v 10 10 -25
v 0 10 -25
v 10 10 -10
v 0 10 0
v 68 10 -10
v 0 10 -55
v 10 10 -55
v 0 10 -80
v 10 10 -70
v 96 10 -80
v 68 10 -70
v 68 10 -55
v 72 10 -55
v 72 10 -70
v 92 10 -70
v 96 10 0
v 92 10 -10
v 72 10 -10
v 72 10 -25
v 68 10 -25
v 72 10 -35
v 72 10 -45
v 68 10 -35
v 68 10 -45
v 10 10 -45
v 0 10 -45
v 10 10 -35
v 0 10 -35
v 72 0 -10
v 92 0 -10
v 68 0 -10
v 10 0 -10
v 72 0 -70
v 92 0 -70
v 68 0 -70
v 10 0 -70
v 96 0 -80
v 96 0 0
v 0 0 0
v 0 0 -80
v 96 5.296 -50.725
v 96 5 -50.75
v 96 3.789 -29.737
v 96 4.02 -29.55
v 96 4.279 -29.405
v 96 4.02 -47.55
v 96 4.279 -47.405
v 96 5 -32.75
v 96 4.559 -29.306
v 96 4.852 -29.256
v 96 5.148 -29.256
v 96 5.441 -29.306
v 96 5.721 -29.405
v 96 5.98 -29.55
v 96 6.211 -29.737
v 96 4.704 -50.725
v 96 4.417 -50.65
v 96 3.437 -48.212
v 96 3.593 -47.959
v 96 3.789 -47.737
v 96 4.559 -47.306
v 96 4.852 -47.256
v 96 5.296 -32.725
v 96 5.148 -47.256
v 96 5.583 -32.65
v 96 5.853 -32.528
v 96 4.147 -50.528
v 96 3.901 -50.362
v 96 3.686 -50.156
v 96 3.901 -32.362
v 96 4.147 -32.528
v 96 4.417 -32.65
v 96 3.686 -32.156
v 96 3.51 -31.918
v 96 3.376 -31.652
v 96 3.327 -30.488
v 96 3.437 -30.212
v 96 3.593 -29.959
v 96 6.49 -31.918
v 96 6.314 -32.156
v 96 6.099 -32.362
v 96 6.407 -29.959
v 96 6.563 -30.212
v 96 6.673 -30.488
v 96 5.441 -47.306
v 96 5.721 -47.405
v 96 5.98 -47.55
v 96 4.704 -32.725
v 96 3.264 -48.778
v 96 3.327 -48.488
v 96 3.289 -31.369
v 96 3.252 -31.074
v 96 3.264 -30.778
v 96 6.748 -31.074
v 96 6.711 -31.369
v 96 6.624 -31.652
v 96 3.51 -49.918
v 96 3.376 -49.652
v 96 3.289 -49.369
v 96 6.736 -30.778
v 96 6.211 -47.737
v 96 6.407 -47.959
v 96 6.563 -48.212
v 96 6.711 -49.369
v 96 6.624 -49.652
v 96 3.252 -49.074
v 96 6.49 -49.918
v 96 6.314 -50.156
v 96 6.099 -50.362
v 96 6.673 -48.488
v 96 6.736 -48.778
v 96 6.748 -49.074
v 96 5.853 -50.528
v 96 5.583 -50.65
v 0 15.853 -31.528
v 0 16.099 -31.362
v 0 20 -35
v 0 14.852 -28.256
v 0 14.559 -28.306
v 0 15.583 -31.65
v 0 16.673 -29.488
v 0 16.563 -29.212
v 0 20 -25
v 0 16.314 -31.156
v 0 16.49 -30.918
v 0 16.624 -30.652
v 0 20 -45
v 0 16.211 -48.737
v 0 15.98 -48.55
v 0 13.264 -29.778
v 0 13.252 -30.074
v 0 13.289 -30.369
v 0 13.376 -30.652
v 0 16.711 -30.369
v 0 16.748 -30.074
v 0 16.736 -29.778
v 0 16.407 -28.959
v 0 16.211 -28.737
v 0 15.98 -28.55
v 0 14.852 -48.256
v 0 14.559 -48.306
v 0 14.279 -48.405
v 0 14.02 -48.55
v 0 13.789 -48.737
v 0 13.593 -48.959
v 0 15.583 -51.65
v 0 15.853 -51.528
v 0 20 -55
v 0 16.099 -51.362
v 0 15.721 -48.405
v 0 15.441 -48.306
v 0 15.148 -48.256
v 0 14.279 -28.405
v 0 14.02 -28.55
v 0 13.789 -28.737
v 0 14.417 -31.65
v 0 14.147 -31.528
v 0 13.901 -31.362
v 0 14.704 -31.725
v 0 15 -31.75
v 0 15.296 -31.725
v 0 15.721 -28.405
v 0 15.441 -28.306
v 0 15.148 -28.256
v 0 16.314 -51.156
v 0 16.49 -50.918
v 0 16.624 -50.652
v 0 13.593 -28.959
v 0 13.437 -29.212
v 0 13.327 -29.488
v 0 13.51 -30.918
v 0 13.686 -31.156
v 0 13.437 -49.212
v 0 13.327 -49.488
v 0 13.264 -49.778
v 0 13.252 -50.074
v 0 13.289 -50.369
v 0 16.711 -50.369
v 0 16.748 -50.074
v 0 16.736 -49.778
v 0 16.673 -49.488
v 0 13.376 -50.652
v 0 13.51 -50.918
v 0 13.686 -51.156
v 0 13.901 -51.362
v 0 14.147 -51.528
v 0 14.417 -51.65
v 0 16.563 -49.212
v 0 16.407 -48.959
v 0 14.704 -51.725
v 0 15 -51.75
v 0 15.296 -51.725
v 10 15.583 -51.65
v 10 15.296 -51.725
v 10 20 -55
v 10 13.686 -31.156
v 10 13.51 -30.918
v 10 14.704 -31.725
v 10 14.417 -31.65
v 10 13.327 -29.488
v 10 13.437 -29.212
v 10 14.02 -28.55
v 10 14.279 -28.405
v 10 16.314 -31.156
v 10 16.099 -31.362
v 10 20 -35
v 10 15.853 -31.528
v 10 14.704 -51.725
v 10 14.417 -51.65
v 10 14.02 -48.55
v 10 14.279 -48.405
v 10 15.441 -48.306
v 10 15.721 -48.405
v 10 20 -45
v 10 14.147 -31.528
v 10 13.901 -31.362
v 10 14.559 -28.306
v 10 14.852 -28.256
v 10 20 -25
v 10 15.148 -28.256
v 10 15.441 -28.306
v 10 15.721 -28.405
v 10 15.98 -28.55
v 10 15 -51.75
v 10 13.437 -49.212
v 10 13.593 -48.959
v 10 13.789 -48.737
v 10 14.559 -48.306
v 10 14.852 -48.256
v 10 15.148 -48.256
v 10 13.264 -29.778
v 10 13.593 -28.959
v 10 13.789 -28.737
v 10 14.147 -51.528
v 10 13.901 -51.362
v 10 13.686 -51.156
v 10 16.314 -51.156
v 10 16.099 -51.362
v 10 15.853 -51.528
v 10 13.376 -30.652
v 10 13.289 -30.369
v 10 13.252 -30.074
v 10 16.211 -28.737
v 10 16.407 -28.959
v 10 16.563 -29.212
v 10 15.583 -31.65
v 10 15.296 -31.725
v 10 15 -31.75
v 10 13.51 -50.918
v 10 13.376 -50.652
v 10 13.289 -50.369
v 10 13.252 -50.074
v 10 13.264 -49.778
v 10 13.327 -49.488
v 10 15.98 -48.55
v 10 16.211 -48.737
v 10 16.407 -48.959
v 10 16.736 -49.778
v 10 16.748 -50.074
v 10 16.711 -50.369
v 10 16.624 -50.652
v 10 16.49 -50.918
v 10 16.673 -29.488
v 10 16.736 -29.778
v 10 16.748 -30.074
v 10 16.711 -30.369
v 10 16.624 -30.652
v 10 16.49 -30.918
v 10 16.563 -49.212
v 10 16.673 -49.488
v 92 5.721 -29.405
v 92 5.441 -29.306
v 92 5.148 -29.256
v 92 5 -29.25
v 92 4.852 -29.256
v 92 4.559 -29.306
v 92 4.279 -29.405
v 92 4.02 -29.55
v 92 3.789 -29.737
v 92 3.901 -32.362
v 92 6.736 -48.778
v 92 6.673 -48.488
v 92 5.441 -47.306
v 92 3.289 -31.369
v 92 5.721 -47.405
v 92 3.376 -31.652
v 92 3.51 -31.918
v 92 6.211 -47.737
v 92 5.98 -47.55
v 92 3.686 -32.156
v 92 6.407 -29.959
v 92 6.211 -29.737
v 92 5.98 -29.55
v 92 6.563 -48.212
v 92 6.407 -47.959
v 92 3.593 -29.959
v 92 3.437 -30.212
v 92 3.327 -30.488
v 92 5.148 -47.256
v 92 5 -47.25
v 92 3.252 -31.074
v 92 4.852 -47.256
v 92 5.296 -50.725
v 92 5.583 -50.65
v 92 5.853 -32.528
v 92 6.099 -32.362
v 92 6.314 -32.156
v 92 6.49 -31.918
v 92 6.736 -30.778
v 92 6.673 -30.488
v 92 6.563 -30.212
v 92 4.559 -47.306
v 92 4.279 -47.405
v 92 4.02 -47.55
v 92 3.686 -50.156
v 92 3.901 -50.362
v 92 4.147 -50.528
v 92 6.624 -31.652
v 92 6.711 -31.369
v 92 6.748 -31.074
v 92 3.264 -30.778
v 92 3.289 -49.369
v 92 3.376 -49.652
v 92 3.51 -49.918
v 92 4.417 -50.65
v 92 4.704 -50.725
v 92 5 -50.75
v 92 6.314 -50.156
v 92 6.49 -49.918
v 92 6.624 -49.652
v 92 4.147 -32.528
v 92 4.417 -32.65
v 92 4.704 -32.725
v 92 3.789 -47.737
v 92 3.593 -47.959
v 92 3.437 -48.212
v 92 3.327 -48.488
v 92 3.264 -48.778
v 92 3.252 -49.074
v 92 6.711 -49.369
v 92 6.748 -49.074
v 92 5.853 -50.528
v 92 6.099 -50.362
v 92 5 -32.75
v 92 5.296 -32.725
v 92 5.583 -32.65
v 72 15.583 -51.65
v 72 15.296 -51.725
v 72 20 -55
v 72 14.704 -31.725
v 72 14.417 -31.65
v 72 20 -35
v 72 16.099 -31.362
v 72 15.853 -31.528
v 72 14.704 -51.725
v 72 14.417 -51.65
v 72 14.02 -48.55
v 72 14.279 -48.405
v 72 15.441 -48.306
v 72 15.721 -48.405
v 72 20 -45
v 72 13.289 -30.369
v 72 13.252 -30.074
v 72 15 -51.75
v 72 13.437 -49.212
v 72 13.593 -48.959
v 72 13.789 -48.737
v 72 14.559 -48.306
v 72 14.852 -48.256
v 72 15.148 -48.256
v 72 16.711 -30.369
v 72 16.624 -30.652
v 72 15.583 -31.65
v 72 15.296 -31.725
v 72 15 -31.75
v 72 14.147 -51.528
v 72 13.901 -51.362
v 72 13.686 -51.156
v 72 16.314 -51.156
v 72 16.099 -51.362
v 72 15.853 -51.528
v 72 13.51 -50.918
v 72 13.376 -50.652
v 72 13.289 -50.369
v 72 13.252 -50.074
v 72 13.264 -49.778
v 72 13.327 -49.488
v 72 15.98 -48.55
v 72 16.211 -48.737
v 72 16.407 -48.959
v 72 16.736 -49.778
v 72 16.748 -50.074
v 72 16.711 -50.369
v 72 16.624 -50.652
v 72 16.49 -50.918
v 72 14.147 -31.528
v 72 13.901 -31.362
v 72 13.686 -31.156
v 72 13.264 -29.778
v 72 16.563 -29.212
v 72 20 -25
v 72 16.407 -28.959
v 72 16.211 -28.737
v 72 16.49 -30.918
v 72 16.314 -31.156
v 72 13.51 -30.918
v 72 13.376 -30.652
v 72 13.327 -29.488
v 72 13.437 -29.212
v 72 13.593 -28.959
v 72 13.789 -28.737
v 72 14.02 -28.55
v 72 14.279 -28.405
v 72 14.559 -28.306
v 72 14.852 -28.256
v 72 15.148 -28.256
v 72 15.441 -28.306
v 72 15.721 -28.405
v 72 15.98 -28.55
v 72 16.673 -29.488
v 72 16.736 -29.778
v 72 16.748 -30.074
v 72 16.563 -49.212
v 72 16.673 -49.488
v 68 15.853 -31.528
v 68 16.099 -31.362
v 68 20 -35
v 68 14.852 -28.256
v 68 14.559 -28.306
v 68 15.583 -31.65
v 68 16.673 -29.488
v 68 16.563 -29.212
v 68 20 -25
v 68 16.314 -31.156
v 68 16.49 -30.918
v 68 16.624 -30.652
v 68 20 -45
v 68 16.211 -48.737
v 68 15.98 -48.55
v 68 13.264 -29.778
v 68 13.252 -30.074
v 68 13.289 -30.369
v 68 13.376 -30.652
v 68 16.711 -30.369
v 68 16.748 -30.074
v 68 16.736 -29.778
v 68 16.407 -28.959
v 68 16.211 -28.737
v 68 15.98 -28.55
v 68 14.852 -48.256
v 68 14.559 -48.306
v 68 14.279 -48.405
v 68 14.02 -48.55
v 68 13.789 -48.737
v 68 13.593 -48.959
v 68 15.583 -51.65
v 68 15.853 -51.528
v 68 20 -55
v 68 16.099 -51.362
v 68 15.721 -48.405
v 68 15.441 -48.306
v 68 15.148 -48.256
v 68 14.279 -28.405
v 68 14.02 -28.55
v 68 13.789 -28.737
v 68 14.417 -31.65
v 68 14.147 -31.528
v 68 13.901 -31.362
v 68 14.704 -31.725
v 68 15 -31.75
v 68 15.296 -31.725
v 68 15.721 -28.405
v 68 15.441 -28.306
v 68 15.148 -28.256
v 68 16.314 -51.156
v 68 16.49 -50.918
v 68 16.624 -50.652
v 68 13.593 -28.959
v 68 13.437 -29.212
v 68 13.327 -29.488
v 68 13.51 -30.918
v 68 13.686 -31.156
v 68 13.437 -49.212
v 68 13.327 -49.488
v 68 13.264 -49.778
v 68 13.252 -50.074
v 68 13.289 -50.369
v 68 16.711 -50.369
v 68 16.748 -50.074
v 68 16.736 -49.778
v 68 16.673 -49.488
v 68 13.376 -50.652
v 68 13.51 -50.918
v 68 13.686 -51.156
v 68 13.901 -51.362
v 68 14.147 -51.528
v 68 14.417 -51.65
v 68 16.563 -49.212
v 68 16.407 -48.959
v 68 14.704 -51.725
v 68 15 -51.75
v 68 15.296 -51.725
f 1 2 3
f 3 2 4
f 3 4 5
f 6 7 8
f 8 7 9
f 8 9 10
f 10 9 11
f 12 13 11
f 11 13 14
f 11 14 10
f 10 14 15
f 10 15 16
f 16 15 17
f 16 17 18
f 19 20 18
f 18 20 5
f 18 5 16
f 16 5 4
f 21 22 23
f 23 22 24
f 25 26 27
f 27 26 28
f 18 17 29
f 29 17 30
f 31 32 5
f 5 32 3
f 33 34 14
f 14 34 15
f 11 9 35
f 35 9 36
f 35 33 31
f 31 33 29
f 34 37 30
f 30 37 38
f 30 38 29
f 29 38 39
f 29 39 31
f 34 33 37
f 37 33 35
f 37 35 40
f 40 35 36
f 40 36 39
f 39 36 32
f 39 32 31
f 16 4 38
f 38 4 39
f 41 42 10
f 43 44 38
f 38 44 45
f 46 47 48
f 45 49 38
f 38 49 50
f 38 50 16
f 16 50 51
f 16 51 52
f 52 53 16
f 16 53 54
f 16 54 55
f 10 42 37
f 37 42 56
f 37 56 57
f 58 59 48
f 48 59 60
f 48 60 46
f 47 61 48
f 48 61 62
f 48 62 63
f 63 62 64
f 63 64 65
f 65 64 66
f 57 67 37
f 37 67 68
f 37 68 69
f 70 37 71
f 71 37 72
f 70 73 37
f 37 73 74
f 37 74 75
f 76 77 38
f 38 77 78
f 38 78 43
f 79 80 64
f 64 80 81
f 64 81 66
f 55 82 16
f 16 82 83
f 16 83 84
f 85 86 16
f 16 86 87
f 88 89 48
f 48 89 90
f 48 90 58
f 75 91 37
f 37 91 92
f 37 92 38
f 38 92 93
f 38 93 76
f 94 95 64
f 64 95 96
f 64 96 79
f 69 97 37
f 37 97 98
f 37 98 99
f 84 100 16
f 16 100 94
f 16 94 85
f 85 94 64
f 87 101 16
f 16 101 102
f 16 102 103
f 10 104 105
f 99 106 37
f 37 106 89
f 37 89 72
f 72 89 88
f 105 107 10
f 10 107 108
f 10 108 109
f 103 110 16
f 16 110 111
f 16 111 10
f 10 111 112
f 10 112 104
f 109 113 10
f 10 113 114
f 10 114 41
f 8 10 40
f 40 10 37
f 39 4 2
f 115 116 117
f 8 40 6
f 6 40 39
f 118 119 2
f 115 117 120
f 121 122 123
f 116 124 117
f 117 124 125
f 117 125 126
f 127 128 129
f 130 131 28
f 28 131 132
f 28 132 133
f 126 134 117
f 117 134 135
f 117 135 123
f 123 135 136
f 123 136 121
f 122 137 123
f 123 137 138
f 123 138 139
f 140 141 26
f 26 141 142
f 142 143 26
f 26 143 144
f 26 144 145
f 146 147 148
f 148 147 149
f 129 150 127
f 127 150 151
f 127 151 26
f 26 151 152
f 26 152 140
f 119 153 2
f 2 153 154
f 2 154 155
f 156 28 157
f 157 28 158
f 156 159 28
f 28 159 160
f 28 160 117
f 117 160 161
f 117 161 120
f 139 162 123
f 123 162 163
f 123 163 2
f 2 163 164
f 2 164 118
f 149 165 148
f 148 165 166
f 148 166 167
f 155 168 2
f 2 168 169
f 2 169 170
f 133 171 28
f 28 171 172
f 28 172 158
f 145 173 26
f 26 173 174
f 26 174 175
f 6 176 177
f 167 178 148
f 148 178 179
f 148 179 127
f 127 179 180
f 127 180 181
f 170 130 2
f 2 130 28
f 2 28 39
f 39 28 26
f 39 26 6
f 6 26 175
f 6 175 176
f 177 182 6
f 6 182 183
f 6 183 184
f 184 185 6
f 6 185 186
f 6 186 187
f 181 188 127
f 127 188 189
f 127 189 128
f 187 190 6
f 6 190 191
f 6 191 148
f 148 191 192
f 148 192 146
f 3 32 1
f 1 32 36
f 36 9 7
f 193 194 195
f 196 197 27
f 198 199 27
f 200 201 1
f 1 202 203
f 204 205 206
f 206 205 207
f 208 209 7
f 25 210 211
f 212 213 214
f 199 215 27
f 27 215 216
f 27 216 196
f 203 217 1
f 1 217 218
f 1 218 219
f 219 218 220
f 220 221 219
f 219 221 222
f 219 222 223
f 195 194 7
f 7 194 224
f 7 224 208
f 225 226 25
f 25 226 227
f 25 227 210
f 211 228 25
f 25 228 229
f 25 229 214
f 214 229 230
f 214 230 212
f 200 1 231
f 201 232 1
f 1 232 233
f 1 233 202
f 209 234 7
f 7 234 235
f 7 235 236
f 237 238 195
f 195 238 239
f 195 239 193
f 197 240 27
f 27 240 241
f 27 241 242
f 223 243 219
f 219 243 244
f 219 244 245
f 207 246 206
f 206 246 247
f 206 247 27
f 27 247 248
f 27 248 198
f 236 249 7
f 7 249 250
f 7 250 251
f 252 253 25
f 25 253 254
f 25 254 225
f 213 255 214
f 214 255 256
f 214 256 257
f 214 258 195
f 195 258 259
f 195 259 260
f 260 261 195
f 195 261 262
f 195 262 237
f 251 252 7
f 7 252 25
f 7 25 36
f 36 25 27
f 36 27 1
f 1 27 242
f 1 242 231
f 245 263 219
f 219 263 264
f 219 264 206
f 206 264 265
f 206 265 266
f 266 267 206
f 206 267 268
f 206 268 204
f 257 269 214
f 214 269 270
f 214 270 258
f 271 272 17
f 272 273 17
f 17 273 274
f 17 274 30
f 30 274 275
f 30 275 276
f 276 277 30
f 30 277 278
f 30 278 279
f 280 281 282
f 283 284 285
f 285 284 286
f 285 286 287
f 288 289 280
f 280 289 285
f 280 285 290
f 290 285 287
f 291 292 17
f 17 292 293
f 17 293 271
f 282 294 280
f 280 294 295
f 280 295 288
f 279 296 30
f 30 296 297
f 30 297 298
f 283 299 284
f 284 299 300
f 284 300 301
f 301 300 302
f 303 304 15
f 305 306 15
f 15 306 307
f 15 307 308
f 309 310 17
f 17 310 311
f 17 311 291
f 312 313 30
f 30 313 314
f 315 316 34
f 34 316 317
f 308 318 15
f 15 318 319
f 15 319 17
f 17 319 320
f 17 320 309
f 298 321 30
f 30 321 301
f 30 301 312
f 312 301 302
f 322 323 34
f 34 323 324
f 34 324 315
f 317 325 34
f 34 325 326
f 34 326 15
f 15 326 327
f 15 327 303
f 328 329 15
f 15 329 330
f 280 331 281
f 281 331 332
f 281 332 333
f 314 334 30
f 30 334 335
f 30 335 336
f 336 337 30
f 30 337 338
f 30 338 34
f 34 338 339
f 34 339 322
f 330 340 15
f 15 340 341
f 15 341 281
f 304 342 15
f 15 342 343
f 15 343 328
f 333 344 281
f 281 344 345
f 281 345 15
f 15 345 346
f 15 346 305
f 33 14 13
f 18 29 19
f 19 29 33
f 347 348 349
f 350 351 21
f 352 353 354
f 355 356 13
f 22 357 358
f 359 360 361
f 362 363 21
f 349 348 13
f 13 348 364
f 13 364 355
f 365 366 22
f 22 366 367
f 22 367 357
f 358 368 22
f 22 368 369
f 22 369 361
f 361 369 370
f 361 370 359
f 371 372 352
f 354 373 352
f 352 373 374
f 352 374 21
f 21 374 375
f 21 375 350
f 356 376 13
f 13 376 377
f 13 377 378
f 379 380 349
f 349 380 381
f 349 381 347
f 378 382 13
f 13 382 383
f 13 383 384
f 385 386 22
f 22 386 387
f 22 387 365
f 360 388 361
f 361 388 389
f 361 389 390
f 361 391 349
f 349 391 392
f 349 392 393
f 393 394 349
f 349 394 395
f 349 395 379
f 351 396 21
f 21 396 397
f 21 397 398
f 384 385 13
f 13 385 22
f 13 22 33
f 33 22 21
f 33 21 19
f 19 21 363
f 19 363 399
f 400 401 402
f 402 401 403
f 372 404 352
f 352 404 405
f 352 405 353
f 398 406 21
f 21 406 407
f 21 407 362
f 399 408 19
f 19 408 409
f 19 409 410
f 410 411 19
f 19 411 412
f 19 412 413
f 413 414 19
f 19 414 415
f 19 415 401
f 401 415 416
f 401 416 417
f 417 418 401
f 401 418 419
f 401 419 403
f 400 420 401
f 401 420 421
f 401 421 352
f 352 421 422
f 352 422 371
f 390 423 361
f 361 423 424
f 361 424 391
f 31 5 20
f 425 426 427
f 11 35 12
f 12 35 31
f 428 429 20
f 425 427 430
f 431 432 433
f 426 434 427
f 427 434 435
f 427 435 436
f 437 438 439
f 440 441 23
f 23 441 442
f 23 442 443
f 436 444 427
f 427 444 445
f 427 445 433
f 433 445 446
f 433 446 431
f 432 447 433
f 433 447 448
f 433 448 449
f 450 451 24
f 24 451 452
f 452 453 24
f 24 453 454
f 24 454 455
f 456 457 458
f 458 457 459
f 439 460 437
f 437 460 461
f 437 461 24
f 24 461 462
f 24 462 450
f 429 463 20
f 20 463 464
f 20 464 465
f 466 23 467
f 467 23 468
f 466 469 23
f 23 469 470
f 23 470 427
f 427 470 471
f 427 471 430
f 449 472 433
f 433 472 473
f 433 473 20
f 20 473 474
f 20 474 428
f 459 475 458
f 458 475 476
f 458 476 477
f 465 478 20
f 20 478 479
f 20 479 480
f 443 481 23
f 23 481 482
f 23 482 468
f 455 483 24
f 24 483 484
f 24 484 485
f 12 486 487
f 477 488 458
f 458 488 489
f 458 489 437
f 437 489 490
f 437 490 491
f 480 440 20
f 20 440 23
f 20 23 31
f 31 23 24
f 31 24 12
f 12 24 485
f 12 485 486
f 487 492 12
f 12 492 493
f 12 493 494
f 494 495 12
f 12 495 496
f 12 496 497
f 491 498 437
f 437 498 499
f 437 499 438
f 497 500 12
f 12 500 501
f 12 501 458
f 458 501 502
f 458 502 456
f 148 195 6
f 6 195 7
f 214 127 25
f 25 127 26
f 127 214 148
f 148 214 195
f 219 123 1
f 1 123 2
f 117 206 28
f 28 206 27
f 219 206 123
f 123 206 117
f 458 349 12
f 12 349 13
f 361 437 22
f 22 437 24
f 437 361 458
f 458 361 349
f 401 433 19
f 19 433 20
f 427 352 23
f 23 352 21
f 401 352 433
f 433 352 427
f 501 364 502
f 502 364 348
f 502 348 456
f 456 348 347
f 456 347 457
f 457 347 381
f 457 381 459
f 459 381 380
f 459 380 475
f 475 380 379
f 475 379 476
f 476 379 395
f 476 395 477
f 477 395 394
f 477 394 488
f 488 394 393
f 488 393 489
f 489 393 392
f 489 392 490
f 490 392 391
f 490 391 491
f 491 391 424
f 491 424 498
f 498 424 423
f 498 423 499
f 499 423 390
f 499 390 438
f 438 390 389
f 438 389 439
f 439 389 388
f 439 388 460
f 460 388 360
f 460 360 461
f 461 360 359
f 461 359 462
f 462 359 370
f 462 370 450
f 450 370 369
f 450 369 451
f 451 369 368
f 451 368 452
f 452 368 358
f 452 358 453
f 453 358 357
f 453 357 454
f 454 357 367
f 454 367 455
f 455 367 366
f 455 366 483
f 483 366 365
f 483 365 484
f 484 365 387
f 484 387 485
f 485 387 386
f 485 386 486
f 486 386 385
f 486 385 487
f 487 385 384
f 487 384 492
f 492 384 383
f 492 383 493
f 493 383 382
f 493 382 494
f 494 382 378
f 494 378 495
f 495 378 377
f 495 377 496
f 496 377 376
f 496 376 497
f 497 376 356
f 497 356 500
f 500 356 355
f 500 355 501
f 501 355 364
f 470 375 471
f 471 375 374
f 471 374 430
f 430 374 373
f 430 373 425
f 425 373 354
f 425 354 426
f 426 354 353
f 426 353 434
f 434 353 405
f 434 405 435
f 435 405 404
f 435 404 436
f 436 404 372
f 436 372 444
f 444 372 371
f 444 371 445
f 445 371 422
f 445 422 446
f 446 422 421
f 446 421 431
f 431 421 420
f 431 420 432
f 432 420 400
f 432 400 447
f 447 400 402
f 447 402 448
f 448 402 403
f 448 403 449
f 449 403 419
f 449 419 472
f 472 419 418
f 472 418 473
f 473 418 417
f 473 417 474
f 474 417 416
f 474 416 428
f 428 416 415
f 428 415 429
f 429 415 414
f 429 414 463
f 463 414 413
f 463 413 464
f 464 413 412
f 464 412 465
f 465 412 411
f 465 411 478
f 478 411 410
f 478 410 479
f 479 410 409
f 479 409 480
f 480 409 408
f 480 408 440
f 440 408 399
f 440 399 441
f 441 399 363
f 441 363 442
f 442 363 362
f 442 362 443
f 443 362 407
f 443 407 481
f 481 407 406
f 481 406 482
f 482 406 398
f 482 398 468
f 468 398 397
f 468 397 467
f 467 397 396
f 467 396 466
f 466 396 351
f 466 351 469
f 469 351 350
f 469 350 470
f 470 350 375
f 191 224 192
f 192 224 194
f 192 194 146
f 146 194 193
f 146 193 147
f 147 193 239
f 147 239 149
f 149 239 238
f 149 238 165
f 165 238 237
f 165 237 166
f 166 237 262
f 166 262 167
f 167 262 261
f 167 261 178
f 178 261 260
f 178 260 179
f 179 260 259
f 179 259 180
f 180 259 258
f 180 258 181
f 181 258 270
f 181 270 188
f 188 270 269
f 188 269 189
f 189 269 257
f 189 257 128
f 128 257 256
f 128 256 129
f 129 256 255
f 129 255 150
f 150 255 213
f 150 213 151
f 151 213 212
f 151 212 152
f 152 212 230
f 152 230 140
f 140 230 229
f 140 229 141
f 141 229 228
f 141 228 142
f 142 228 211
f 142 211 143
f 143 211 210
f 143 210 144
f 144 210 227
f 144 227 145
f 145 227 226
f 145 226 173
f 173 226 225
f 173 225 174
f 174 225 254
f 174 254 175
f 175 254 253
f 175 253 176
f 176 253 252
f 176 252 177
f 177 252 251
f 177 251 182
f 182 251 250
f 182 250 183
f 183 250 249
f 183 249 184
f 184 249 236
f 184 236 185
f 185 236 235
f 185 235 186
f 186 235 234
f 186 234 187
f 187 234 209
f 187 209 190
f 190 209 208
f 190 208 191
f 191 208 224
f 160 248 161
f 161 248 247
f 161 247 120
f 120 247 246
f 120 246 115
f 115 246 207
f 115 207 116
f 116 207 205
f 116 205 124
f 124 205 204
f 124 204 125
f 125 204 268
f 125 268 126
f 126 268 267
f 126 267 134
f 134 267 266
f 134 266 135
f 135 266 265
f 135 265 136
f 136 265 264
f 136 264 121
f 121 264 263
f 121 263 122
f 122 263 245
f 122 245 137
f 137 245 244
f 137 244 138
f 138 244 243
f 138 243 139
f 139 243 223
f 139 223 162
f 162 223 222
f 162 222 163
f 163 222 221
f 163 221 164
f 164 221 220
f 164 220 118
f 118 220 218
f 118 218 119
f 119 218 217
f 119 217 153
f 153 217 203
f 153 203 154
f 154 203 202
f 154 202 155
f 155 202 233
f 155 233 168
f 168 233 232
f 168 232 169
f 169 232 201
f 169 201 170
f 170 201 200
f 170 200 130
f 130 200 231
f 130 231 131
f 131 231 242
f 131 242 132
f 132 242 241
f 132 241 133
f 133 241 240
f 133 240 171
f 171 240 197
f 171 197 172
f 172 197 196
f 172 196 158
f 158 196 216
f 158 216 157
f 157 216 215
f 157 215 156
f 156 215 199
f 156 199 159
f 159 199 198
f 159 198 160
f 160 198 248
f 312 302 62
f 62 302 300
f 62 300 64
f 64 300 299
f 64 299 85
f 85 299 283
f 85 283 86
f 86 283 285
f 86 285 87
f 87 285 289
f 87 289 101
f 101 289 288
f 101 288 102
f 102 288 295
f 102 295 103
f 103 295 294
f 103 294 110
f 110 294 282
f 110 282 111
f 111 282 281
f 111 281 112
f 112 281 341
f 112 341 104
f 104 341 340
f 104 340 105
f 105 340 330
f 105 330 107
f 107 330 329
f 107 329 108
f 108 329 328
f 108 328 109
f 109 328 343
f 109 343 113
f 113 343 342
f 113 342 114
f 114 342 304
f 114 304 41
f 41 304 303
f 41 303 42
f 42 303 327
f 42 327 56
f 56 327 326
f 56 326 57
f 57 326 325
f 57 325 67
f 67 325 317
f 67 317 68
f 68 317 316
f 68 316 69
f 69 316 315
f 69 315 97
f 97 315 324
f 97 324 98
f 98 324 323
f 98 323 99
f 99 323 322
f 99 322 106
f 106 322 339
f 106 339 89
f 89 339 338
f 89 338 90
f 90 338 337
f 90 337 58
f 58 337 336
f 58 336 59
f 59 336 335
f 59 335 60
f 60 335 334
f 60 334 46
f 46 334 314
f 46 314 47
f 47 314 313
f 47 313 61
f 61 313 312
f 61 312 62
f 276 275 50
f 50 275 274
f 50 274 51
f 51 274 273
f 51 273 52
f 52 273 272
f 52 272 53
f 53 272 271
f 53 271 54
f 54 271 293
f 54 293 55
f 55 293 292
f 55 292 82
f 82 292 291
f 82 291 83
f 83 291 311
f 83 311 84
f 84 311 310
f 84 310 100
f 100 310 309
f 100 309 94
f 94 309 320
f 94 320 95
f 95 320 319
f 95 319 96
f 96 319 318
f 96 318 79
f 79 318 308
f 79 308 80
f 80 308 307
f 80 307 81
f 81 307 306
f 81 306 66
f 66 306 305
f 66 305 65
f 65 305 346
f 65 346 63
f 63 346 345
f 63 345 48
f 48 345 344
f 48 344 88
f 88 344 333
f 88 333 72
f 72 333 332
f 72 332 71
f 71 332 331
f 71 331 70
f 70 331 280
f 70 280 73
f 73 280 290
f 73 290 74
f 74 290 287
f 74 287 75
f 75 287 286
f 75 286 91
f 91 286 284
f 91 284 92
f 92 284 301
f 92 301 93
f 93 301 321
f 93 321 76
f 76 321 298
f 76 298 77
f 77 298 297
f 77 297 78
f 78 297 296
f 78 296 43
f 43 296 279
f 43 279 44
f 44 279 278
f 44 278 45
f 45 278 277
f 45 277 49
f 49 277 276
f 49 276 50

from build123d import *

# Parameters (mm, degrees)
SKETCH1_W           = 96
SKETCH1_H           = 80
SKETCH1_W_2         = 82
SKETCH1_H_2         = 60
BOSS_EXTRUDE1_DEPTH = 10
BOSS_EXTRUDE2_REACH = 121.231
SKETCH5_W           = 4
SKETCH5_H           = 10
SKETCH6_W           = 10
SKETCH6_H           = 10
SKETCH6_W_2         = 4
BOSS_EXTRUDE3_DEPTH = 10
SKETCH7_R           = 1.75
CUT_EXTRUDE3_DEPTH  = 110.471457467
CUT_EXTRUDE4_REACH  = 128.554
SKETCH10_R          = 1.75


with BuildPart() as part:
    # Sketch1 → Boss-Extrude1 (new body)
    with BuildSketch(Plane(origin=(0, 0, 0), x_dir=(1, 0, 0), z_dir=(0, 1, 0))):
        with Locations((48, 40)):
            Rectangle(SKETCH1_W, SKETCH1_H)
        with Locations((51, 40)):
            Rectangle(SKETCH1_W_2, SKETCH1_H_2, mode=Mode.SUBTRACT)
    extrude(amount=BOSS_EXTRUDE1_DEPTH)

    # Sketch5 → Boss-Extrude2 (add, up to next)
    with BuildSketch(Plane.XY.offset(-70), mode=Mode.PRIVATE) as boss_extrude2_sk1:
        with Locations((70, 5)):
            Rectangle(SKETCH5_W, SKETCH5_H)
    boss_extrude2_tool1 = extrude(boss_extrude2_sk1.sketch, amount=BOSS_EXTRUDE2_REACH, mode=Mode.PRIVATE) - part.part
    add(boss_extrude2_tool1.solids().sort_by_distance((70, 5, -70))[0])

    # Sketch6 → Boss-Extrude3 (add)
    with BuildSketch(Plane(origin=(0, 10, 0), x_dir=(1, 0, 0), z_dir=(0, 1, 0))):
        with Locations((5, 50)):
            Rectangle(SKETCH6_W, SKETCH6_H)
        with Locations((5, 30)):
            Rectangle(SKETCH6_W, SKETCH6_H)
        with Locations((70, 50)):
            Rectangle(SKETCH6_W_2, SKETCH6_H)
        with Locations((70, 30)):
            Rectangle(SKETCH6_W_2, SKETCH6_H)
    extrude(amount=BOSS_EXTRUDE3_DEPTH)

    # Sketch7 → Cut-Extrude3 (cut, through all)
    with BuildSketch(Plane(origin=(72, 0, 0), x_dir=(0, 0, -1), z_dir=(1, 0, 0))):
        with Locations((30, 15)):
            Circle(SKETCH7_R)
        with Locations((50, 15)):
            Circle(SKETCH7_R)
    extrude(amount=-CUT_EXTRUDE3_DEPTH, mode=Mode.SUBTRACT)

    # Sketch10 → Cut-Extrude4 (cut, up to next)
    with BuildSketch(Plane(origin=(96, 0, 0), x_dir=(0, 0, -1), z_dir=(1, 0, 0)), mode=Mode.PRIVATE) as cut_extrude4_sk1:
        with Locations((31, 5)):
            Circle(SKETCH10_R)
    cut_extrude4_tool1 = extrude(cut_extrude4_sk1.sketch, amount=-CUT_EXTRUDE4_REACH, mode=Mode.PRIVATE) & part.part
    # Sketch10 → Cut-Extrude4 (cut, up to next)
    with BuildSketch(Plane(origin=(96, 0, 0), x_dir=(0, 0, -1), z_dir=(1, 0, 0)), mode=Mode.PRIVATE) as cut_extrude4_sk2:
        with Locations((49, 5)):
            Circle(SKETCH10_R)
    cut_extrude4_tool2 = extrude(cut_extrude4_sk2.sketch, amount=-CUT_EXTRUDE4_REACH, mode=Mode.PRIVATE) & part.part
    add(cut_extrude4_tool1.solids().sort_by_distance((96, 5, -31))[0], mode=Mode.SUBTRACT)
    add(cut_extrude4_tool2.solids().sort_by_distance((96, 5, -49))[0], mode=Mode.SUBTRACT)


solid = part.part
